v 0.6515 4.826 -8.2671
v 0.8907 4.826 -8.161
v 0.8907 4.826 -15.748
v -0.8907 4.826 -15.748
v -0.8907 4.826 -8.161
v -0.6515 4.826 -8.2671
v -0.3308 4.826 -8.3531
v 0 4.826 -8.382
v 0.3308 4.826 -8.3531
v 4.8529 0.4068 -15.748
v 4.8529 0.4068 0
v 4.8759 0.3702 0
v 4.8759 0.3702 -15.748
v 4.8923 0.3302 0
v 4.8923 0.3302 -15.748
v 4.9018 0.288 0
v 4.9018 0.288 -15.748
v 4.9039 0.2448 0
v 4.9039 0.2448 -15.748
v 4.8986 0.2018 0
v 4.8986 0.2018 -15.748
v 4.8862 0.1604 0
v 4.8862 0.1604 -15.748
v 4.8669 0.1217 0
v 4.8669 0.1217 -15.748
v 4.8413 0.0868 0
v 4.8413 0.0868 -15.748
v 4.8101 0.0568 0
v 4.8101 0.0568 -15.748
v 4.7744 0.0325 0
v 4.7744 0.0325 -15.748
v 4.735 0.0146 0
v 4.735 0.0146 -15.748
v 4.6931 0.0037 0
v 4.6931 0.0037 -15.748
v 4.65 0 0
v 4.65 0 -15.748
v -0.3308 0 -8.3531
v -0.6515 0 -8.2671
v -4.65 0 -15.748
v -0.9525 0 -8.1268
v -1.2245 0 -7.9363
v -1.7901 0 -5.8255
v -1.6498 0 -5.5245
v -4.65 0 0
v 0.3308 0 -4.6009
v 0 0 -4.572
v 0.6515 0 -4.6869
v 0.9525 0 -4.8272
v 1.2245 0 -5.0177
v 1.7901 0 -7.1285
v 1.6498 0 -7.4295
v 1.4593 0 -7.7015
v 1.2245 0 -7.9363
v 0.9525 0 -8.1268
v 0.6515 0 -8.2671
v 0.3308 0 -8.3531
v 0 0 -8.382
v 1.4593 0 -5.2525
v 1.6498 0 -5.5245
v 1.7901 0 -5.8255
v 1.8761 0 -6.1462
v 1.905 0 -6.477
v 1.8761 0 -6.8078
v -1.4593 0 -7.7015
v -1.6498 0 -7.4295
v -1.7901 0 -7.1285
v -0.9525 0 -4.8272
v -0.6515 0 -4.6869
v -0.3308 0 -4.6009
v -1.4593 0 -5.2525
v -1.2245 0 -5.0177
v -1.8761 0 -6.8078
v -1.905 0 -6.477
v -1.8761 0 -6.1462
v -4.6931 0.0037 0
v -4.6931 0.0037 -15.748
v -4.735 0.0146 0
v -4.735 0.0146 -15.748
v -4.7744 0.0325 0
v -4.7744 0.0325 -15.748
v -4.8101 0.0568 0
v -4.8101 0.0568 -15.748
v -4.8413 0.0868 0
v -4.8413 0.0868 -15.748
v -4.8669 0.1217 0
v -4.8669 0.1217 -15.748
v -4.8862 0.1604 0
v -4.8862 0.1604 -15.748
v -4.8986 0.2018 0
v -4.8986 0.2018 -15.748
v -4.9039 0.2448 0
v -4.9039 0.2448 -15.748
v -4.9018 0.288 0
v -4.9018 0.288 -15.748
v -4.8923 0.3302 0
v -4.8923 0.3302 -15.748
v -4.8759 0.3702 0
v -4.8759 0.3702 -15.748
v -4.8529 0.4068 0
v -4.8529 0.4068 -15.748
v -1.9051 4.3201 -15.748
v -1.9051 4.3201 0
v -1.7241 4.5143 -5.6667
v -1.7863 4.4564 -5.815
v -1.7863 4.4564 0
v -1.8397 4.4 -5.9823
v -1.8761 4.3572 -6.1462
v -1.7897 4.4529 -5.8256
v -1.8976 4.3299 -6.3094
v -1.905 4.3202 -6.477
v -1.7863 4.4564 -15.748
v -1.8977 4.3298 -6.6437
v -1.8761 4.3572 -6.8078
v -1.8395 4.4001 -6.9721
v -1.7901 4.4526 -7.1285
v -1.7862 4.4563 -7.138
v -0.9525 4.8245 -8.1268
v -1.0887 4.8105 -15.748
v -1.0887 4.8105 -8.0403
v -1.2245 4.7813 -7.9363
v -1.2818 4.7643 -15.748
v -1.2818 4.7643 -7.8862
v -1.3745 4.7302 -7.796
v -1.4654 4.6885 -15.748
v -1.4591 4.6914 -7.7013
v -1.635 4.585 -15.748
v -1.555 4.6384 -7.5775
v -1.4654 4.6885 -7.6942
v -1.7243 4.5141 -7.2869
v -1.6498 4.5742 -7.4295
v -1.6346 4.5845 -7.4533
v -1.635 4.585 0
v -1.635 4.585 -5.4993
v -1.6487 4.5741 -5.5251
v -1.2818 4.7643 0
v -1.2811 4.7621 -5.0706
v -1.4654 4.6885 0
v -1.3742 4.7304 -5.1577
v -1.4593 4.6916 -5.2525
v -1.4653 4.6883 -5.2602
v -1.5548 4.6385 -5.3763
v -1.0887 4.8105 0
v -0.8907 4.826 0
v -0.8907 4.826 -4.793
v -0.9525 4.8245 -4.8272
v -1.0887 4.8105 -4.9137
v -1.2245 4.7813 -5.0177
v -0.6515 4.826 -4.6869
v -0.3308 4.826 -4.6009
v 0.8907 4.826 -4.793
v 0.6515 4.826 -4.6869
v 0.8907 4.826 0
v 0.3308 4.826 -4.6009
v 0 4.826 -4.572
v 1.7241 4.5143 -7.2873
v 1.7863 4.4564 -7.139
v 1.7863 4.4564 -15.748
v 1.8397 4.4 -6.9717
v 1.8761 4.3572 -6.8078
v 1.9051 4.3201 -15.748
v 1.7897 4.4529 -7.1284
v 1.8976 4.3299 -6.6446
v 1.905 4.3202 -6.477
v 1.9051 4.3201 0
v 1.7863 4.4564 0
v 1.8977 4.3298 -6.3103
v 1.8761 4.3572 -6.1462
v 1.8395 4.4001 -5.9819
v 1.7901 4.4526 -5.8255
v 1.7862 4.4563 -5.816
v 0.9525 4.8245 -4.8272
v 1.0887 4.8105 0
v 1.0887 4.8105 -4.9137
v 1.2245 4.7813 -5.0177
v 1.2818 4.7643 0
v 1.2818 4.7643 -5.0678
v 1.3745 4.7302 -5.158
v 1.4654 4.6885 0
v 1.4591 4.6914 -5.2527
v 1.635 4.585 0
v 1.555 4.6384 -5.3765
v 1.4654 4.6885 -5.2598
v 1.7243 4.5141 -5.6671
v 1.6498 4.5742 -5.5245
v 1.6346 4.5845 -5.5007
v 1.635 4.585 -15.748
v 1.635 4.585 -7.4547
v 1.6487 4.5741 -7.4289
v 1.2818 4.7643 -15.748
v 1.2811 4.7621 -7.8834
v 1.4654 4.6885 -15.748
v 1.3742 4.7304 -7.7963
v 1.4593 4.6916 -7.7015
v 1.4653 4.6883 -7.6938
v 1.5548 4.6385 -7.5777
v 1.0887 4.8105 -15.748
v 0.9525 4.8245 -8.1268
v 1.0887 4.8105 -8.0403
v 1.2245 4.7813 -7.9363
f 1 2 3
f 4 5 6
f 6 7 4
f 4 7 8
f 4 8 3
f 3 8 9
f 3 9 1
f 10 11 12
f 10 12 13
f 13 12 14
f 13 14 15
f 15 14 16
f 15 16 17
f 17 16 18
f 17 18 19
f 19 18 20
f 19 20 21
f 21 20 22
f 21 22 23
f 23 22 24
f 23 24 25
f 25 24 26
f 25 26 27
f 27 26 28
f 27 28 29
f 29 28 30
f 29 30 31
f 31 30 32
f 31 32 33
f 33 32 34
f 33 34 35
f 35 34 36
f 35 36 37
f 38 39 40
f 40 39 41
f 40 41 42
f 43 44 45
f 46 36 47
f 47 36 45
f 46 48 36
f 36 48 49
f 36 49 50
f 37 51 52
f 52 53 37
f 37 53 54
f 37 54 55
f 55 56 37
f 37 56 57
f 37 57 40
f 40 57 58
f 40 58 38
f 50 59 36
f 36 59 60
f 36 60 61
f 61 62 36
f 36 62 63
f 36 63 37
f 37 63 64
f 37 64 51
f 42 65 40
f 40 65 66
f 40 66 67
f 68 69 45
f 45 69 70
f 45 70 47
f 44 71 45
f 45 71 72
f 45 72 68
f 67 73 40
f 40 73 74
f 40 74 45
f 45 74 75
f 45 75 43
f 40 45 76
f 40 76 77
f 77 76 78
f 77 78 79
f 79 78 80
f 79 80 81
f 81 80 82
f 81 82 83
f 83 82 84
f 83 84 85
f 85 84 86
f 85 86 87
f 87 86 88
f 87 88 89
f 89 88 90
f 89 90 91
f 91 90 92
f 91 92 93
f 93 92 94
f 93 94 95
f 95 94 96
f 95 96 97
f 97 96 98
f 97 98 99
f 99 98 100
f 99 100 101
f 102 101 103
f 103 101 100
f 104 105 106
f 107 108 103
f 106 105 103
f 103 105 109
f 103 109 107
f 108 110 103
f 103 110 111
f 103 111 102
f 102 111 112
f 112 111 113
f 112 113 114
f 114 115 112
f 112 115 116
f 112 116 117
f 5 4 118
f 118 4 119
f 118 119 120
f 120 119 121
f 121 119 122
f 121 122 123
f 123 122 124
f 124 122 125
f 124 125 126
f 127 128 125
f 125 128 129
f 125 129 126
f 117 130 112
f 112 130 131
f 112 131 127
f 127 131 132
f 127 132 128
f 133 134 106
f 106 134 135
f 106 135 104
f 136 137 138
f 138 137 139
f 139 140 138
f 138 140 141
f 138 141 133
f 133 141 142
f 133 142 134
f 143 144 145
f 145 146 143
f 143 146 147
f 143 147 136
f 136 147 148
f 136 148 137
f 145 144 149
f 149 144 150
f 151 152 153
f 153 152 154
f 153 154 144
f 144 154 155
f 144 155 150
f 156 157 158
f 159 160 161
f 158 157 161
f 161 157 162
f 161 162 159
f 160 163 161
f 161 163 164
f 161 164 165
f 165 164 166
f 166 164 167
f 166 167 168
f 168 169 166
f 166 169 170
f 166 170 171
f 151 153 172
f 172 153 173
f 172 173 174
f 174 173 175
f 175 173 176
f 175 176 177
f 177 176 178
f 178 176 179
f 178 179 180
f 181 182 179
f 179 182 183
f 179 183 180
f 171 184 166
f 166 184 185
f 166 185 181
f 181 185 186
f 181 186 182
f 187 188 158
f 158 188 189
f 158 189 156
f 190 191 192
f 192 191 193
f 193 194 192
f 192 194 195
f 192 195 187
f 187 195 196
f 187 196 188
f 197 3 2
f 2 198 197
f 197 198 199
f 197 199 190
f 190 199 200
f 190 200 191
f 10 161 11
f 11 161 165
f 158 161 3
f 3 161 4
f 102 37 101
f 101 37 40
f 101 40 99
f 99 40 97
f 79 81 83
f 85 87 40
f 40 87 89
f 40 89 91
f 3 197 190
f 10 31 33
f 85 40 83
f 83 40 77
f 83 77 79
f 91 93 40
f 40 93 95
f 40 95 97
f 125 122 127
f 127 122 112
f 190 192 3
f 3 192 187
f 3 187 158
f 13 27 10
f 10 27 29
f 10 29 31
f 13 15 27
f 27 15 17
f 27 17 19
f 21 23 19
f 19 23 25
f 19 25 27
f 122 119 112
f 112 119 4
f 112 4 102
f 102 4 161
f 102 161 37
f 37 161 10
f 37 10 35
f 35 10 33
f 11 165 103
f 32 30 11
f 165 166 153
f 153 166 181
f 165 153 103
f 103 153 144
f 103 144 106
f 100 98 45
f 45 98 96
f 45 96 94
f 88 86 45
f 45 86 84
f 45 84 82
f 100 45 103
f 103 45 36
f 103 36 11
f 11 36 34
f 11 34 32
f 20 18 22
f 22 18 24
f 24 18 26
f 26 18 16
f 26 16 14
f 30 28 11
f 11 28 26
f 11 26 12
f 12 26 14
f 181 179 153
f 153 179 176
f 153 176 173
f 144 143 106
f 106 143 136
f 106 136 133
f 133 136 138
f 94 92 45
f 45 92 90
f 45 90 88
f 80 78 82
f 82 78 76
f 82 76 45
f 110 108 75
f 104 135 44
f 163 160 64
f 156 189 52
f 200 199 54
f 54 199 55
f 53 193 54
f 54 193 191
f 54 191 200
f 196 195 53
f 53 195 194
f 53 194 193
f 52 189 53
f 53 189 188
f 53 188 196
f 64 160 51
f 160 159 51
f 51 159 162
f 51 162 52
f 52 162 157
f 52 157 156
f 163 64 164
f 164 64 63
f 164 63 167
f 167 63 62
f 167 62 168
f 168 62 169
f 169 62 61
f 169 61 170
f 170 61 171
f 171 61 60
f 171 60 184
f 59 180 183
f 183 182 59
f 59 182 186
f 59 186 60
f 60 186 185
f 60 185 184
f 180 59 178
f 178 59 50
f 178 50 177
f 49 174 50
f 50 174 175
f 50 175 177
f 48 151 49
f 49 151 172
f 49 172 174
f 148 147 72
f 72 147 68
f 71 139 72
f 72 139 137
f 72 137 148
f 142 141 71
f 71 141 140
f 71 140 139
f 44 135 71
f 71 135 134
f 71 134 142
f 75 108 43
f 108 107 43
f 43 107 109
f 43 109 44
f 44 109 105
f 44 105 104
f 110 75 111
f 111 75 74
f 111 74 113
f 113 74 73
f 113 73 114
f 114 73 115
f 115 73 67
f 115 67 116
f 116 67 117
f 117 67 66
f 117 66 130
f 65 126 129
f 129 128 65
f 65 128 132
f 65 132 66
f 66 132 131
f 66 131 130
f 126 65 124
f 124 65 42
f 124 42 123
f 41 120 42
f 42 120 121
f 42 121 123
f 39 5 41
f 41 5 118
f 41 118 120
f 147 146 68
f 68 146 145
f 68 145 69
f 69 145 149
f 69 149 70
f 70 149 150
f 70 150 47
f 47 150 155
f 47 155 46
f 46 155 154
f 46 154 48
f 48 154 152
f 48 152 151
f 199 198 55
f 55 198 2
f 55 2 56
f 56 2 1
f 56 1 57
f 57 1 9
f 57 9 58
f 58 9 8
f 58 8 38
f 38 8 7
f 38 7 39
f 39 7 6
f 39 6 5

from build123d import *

# Parameters (mm, degrees)
BOSS_EXTRUDE1_DEPTH = 15.748
SKETCH2_R           = 1.905
CUT_EXTRUDE1_DEPTH  = 7.62


with BuildPart() as part:
    # Sketch1 → Boss-Extrude1 (new body)
    with BuildSketch(Plane.XY):
        with BuildLine():
            Line((-4.650037455, 0), (4.650037455, 0))
            ThreePointArc((4.650037455, 0), (4.877341219, 0.140646574), (4.852916671, 0.406826777))
            Line((4.852916671, 0.406826777), (1.905063618, 4.320133887))
            ThreePointArc((1.905063618, 4.320133887), (1.457434672, 4.692518816), (0.89066754, 4.826))
            Line((0.89066754, 4.826), (-0.89066754, 4.826))
            ThreePointArc((-0.89066754, 4.826), (-1.457434672, 4.692518816), (-1.905063618, 4.320133887))
            Line((-1.905063618, 4.320133887), (-4.852916671, 0.406826777))
            ThreePointArc((-4.852916671, 0.406826777), (-4.877341219, 0.140646574), (-4.650037455, 0))
        make_face()
    extrude(amount=-BOSS_EXTRUDE1_DEPTH)

    # Sketch2 → Cut-Extrude1 (cut)
    with BuildSketch(Plane.XZ):
        with Locations((0, -6.477)):
            Circle(SKETCH2_R)
    extrude(amount=-CUT_EXTRUDE1_DEPTH, mode=Mode.SUBTRACT)


solid = part.part
